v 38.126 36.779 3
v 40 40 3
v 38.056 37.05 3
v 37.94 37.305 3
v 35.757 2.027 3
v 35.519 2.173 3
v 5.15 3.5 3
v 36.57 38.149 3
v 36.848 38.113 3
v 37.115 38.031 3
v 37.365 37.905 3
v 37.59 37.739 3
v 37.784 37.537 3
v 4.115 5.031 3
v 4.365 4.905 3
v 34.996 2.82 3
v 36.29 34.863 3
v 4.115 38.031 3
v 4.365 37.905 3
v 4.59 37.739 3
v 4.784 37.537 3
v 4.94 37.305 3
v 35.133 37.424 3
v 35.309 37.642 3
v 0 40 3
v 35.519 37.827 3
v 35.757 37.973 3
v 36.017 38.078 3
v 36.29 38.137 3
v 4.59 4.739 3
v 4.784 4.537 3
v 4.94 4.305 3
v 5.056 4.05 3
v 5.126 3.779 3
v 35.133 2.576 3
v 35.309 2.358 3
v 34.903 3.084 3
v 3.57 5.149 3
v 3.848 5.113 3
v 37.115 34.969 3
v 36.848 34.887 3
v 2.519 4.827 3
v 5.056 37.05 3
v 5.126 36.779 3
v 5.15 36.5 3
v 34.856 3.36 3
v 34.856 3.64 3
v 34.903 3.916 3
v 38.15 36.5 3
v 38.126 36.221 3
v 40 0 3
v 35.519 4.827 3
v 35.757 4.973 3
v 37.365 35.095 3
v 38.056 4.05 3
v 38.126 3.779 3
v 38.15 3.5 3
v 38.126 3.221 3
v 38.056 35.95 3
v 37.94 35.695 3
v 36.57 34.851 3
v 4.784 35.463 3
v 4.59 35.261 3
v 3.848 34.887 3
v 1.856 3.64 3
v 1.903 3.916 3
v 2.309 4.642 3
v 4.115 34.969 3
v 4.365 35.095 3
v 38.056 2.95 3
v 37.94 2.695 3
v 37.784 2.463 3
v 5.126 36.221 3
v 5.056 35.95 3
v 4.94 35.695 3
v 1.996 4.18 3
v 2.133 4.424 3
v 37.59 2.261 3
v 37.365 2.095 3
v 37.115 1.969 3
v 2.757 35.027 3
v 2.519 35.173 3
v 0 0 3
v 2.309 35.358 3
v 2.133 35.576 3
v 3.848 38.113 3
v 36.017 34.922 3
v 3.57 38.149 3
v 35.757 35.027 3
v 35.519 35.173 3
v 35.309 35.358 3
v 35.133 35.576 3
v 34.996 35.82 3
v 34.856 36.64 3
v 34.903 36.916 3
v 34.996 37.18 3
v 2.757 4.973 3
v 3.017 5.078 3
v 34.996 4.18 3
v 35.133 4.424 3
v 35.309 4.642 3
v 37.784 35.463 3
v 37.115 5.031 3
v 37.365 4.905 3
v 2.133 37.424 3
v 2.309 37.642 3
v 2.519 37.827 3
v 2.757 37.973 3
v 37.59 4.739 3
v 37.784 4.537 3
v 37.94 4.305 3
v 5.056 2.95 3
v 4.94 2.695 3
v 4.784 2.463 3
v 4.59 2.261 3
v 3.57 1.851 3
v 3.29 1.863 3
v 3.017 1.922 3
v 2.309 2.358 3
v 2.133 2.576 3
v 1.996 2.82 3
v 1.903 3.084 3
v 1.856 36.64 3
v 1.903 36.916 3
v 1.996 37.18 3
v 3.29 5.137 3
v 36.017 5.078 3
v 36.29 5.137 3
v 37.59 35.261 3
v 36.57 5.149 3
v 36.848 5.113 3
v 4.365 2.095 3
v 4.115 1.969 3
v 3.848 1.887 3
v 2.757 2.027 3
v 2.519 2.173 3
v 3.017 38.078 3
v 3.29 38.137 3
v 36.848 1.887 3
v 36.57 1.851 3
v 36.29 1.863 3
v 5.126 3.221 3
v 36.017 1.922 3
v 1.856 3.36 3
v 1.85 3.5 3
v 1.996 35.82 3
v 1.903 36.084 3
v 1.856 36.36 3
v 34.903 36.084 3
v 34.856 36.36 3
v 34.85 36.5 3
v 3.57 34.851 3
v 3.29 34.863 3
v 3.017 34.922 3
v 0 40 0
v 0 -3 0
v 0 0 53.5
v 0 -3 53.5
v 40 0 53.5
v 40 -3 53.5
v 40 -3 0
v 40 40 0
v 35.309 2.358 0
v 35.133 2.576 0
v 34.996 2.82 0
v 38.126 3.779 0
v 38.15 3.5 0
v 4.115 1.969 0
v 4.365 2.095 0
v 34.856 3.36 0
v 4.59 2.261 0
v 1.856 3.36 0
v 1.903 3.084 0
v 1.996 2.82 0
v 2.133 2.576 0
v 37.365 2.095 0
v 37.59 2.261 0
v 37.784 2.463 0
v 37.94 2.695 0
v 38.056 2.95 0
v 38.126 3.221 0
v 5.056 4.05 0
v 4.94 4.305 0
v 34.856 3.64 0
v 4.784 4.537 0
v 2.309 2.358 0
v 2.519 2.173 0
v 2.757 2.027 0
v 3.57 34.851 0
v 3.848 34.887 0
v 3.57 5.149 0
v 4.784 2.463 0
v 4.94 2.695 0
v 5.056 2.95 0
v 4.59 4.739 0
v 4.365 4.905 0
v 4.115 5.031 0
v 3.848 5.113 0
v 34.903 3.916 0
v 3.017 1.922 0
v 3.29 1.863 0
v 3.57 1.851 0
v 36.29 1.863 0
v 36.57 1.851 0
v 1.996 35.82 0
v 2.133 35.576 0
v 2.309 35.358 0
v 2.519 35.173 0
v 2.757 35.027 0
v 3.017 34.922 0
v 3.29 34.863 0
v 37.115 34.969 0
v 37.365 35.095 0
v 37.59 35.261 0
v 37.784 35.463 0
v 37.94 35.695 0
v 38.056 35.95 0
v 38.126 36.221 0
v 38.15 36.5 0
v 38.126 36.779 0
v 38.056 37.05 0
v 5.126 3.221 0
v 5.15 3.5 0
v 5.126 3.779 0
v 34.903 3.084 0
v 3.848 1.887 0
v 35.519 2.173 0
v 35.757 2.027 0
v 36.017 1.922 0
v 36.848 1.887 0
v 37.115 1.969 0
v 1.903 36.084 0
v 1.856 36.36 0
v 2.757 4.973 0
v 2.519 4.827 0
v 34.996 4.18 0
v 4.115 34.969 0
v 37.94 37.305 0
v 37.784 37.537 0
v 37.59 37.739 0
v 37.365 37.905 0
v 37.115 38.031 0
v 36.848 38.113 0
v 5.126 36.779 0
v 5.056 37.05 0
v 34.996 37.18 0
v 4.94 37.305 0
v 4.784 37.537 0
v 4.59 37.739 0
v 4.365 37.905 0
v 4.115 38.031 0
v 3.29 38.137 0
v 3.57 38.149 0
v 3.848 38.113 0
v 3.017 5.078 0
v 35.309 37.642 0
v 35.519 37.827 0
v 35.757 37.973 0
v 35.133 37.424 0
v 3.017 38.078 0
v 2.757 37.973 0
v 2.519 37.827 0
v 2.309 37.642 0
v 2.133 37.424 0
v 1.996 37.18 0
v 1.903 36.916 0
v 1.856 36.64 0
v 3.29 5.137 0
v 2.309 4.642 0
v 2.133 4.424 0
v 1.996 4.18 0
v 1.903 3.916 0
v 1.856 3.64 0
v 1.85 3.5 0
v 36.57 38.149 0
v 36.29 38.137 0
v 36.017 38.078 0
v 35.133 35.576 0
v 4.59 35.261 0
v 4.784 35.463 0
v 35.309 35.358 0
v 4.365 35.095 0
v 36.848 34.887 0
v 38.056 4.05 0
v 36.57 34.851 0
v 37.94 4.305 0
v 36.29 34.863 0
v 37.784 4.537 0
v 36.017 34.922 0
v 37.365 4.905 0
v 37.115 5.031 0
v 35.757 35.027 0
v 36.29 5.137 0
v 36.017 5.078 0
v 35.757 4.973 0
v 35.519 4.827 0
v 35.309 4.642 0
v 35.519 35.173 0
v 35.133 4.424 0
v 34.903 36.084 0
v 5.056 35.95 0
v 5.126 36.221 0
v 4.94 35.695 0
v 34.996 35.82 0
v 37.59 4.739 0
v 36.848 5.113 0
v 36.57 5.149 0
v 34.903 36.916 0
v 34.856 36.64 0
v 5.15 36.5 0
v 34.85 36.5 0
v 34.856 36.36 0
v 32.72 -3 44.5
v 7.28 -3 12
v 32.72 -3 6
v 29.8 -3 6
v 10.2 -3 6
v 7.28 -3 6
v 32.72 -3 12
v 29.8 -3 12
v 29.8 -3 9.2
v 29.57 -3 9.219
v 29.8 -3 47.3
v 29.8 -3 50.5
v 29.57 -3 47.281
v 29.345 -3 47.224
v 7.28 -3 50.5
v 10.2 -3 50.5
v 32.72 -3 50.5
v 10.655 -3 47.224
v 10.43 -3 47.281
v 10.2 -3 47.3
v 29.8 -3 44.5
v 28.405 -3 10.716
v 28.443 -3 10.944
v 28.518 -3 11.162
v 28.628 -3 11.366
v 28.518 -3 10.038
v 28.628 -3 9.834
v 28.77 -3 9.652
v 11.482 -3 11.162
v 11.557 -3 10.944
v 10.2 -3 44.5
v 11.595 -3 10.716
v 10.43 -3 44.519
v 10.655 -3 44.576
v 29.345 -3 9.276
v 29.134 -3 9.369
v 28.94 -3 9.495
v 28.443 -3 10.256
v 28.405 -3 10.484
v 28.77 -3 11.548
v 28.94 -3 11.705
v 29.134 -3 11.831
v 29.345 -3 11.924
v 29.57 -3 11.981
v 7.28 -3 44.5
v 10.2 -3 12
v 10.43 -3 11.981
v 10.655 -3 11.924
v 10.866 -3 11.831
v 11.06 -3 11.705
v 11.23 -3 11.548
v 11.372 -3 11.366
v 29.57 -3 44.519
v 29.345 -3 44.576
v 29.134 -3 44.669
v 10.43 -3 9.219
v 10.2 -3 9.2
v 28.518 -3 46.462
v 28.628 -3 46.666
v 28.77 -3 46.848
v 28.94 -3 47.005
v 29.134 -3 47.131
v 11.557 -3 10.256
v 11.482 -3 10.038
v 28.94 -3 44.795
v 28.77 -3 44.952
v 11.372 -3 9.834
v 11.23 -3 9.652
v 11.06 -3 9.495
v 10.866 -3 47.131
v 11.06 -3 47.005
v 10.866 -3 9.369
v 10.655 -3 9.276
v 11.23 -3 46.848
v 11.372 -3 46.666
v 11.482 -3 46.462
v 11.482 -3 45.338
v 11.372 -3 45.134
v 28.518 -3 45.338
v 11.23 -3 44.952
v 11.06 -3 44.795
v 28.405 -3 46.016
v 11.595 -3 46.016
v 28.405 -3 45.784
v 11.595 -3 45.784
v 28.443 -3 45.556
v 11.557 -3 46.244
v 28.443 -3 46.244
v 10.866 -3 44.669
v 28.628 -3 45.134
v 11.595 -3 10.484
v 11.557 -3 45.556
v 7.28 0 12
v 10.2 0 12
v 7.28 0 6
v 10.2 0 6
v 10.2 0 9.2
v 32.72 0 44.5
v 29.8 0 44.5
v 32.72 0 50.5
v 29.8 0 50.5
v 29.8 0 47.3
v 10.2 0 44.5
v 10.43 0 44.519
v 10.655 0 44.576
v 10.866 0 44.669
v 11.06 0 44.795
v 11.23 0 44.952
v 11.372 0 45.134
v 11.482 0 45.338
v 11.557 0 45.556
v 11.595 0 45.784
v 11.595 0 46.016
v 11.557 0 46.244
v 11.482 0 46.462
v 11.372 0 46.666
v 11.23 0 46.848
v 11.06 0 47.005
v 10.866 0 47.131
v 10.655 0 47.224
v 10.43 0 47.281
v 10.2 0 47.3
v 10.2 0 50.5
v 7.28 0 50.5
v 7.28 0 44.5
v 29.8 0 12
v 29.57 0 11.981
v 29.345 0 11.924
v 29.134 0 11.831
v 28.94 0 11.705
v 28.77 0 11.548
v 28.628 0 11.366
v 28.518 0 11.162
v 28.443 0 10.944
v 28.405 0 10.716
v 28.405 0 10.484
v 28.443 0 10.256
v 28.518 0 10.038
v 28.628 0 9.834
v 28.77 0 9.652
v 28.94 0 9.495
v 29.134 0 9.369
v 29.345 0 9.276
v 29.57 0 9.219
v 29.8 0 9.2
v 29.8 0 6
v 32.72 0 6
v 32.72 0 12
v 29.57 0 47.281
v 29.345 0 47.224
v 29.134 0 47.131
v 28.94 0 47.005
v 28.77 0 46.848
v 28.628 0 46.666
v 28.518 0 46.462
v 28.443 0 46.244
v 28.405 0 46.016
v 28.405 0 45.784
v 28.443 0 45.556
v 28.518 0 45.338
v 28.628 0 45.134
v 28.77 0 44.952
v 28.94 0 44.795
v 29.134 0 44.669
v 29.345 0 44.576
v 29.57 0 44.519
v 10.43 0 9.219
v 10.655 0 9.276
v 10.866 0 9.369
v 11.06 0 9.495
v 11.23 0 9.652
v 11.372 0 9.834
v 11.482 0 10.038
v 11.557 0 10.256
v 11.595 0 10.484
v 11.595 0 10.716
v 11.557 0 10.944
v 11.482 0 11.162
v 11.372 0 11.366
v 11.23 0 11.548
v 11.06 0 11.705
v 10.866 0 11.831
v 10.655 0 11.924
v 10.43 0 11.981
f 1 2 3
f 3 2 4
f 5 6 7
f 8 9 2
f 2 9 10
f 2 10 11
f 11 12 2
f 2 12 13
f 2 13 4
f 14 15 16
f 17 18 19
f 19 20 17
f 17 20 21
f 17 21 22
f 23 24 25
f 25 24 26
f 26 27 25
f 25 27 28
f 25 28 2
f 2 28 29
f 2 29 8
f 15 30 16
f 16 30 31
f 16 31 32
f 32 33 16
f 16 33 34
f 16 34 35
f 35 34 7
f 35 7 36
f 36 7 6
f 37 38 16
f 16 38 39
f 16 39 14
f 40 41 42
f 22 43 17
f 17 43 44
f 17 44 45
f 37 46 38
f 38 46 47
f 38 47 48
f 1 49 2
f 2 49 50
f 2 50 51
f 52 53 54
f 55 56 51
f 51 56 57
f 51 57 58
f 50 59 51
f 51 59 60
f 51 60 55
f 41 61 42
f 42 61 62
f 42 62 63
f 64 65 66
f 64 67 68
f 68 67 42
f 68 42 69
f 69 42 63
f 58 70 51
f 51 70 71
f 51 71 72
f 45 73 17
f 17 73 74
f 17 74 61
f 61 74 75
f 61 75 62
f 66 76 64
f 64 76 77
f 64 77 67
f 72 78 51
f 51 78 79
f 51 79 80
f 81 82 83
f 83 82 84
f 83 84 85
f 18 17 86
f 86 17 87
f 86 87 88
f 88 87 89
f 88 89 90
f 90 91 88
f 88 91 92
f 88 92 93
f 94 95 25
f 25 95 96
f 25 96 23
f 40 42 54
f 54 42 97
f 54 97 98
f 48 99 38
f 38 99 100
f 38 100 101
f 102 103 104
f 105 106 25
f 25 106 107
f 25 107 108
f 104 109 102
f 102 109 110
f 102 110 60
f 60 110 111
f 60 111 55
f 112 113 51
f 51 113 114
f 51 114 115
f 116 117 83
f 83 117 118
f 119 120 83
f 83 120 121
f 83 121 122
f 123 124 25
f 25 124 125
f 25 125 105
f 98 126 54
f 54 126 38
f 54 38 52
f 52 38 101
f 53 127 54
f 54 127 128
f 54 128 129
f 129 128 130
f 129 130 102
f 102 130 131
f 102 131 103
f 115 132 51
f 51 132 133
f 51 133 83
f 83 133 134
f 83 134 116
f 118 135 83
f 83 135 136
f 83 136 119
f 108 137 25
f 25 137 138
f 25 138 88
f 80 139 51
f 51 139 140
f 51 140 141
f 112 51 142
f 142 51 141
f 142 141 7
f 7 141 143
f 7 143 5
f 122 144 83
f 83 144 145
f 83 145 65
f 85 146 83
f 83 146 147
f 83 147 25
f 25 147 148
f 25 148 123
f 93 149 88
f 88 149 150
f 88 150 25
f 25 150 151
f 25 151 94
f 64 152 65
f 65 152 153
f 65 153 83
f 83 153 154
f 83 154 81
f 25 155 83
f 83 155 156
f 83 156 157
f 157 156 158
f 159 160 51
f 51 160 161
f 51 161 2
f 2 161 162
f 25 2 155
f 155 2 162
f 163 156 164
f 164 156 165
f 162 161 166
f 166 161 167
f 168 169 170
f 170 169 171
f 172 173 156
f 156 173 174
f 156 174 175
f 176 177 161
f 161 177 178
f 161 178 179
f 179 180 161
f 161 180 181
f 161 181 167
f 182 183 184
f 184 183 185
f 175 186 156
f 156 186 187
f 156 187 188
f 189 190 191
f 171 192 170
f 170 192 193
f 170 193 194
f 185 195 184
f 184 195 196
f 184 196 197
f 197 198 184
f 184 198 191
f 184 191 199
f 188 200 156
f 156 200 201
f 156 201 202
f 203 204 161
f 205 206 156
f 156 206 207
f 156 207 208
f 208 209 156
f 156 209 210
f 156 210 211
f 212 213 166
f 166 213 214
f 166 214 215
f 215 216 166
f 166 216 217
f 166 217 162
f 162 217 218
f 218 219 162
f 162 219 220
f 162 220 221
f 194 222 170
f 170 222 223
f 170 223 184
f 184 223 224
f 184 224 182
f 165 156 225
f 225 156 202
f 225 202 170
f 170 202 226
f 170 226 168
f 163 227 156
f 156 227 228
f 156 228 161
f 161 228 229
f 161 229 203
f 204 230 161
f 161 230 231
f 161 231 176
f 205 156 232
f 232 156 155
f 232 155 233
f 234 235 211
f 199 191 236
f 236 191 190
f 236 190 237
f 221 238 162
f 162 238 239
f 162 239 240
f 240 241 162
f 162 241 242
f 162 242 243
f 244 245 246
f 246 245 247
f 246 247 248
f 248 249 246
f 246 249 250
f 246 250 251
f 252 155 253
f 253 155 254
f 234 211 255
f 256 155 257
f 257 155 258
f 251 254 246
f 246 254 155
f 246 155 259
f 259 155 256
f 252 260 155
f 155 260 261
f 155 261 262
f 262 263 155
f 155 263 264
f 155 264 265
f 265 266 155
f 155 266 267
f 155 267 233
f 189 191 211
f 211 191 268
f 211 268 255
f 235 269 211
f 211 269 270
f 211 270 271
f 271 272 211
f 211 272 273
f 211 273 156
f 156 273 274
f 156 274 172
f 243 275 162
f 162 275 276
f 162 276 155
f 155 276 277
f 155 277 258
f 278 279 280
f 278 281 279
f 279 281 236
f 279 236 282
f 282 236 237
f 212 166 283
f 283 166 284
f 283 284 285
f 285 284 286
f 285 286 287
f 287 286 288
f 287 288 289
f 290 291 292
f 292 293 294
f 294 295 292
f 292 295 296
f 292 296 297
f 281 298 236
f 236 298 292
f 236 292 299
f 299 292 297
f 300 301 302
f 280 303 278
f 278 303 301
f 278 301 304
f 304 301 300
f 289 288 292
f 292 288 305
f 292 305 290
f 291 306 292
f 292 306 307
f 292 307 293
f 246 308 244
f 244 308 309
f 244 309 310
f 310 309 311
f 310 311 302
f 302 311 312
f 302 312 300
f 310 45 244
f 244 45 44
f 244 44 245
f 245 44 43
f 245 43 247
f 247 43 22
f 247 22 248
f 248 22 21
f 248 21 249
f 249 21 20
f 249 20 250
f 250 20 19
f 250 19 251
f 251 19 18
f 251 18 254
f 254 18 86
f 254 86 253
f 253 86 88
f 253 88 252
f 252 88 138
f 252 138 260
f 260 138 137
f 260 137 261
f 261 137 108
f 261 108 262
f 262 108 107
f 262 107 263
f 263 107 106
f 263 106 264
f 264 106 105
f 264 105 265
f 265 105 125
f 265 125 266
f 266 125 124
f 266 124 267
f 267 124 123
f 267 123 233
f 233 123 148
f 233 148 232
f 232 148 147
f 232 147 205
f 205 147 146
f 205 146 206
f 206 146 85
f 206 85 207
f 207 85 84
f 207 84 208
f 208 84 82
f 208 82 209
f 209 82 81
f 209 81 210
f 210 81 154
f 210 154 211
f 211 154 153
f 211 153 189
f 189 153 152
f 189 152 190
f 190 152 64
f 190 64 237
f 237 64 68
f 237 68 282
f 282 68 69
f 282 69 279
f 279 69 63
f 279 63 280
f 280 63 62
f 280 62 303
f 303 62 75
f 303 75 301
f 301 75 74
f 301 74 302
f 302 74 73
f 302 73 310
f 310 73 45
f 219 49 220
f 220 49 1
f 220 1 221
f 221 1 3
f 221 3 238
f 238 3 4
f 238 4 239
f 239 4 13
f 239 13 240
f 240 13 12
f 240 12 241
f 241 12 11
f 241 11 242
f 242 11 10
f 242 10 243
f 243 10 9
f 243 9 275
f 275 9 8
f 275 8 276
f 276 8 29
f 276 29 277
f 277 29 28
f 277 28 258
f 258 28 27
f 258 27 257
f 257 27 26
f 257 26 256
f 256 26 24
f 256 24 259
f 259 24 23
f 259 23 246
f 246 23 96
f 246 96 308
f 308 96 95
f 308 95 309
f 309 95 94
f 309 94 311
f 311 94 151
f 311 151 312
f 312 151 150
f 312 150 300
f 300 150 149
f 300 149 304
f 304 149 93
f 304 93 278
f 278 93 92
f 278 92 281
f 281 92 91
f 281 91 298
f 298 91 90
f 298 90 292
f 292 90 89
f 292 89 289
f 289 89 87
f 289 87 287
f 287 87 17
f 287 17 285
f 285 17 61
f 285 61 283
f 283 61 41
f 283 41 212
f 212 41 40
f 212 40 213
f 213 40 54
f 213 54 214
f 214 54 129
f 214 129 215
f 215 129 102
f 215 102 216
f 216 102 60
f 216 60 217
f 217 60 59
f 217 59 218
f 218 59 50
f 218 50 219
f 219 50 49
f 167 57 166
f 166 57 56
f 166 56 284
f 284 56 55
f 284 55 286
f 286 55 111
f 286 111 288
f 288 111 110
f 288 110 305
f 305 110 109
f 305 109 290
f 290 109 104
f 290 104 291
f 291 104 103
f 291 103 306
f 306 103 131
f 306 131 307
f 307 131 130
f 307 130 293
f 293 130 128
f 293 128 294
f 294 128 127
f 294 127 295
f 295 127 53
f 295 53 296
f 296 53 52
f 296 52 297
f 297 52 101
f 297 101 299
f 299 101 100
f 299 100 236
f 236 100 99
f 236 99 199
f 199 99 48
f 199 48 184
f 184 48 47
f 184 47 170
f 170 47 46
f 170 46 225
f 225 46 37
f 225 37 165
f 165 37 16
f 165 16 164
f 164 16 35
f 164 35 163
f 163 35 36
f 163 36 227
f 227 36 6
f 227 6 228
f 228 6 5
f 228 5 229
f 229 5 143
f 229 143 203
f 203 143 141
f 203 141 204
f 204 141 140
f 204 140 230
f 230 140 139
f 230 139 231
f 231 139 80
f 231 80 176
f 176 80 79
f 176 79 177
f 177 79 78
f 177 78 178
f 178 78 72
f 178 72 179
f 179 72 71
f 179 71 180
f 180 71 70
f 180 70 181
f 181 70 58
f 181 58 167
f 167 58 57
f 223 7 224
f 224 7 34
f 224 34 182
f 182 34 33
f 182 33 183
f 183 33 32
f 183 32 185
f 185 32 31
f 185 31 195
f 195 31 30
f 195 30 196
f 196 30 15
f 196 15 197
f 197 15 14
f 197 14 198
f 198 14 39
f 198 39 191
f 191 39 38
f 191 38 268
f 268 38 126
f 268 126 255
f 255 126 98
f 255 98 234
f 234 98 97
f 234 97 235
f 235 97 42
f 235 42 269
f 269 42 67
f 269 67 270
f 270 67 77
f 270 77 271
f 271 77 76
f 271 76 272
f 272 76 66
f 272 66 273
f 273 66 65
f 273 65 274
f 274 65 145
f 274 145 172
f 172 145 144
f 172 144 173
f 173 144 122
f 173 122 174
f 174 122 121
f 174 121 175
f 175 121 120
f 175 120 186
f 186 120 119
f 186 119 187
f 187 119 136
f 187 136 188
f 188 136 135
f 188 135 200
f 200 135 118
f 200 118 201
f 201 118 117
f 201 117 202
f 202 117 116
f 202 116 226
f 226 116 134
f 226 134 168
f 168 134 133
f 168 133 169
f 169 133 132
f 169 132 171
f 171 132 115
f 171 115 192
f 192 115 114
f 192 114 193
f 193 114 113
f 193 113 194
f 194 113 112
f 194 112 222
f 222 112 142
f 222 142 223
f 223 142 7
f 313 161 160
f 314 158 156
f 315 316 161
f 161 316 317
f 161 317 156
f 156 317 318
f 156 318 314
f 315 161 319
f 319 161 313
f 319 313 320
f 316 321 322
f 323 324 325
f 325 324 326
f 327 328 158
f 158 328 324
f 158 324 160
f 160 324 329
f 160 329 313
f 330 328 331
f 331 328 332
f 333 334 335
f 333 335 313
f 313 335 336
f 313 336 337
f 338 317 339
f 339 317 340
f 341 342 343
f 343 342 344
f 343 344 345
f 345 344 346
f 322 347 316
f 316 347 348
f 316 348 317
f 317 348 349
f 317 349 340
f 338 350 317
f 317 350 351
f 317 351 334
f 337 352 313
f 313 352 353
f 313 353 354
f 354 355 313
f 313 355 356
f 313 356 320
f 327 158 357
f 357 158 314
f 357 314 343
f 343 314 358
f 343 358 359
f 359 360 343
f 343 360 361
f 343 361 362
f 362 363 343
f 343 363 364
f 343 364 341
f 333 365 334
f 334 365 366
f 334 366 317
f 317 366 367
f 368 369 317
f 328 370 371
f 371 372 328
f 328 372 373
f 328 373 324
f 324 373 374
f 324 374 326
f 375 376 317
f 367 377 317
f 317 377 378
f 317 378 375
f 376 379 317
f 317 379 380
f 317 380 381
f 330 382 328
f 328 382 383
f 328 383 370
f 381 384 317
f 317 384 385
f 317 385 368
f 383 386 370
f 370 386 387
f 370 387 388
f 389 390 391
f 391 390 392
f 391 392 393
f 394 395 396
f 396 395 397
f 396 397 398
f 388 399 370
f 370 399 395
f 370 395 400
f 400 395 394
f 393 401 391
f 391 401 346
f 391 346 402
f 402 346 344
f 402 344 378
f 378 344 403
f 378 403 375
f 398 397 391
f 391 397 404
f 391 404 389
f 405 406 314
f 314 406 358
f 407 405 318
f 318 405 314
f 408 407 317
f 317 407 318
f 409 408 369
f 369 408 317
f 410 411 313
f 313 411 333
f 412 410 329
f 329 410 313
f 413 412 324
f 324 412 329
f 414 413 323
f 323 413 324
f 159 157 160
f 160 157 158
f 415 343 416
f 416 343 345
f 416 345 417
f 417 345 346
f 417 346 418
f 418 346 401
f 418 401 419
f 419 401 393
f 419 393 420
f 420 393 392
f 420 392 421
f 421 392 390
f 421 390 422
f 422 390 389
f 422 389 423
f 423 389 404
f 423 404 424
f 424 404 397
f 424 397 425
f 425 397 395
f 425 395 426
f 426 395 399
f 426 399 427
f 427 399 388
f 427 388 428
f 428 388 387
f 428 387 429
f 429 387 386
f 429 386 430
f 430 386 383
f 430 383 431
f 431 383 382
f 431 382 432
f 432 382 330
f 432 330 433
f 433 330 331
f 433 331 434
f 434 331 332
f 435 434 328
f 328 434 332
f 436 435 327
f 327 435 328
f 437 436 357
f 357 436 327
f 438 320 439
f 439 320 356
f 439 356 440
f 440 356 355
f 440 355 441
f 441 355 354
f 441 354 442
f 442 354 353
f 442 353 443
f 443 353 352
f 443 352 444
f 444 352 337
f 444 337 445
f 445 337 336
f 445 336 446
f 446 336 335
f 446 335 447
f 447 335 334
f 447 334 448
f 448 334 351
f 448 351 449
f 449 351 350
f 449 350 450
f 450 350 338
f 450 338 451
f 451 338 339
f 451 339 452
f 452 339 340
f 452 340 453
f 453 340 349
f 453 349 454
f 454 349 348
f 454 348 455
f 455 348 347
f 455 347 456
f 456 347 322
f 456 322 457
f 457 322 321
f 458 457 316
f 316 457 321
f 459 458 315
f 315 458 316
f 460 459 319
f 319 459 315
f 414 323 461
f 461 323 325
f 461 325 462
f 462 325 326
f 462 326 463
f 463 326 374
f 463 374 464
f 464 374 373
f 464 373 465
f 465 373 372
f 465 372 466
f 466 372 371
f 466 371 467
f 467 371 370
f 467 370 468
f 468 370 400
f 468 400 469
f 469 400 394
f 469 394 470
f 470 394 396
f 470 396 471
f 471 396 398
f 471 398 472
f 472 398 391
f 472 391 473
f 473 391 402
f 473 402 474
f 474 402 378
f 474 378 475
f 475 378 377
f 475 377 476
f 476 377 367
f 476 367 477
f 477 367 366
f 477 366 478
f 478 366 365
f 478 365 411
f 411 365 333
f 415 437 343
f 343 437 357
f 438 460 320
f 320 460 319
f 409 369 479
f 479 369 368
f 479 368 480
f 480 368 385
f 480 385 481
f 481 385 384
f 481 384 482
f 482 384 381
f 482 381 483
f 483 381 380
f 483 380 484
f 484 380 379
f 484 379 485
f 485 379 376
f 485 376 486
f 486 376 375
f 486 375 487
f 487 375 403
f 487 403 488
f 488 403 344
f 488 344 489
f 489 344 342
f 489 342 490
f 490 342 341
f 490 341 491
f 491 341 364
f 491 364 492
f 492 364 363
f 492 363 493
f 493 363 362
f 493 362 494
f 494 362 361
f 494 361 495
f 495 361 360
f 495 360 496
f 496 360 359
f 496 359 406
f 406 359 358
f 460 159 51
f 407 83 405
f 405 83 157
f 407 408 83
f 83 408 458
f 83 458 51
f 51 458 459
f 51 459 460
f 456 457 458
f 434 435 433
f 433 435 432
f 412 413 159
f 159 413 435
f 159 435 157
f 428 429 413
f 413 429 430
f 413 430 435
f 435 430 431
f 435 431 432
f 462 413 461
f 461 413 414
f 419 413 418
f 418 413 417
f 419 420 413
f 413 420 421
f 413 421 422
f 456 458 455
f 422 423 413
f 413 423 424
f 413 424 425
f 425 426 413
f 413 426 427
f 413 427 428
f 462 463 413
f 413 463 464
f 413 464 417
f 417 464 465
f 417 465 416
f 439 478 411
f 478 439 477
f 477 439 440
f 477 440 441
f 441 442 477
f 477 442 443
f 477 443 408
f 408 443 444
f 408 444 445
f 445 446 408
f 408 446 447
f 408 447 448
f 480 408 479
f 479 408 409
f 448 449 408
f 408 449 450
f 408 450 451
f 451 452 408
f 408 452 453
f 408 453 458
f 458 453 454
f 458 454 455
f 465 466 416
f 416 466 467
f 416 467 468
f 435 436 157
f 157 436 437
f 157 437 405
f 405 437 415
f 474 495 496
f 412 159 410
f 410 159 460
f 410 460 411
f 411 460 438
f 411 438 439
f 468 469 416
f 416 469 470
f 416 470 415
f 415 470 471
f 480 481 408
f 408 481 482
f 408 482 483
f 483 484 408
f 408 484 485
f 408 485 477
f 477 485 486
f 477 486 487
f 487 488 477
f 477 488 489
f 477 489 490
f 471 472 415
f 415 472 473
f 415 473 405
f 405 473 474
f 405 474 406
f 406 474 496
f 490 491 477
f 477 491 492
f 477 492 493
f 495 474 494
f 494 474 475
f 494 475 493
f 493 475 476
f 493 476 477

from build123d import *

# Parameters (mm, degrees)
SKETCH1_W           = 40
SKETCH1_H           = 40
BOSS_EXTRUDE1_DEPTH = 3
SKETCH2_R           = 1.65
CUT_EXTRUDE1_DEPTH  = 3
SKETCH3_W           = 40
SKETCH3_H           = 3
BOSS_EXTRUDE2_DEPTH = 3
SKETCH4_W           = 40
SKETCH4_H           = 50.5
BOSS_EXTRUDE3_DEPTH = 3


with BuildPart() as part:
    # Sketch1 → Boss-Extrude1 (new body)
    with BuildSketch(Plane.XY):
        with Locations((20, 20)):
            Rectangle(SKETCH1_W, SKETCH1_H)
    extrude(amount=BOSS_EXTRUDE1_DEPTH)

    # Sketch2 → Cut-Extrude1 (cut)
    with BuildSketch(Plane.XY.offset(3)):
        with Locations((3.5, 36.5)):
            Circle(SKETCH2_R)
        with Locations(Location((36.5, 36.5, 0), (0, 0, 180))):
            Circle(SKETCH2_R)
        with Locations((36.5, 3.5)):
            Circle(SKETCH2_R)
        with Locations(Location((3.5, 3.5, 0), (0, 0, 180))):
            Circle(SKETCH2_R)
    extrude(amount=-CUT_EXTRUDE1_DEPTH, mode=Mode.SUBTRACT)

    # Sketch3 → Boss-Extrude2 (add)
    with BuildSketch(Plane.XY.offset(3)):
        with Locations((20, -1.5)):
            Rectangle(SKETCH3_W, SKETCH3_H)
    extrude(amount=-BOSS_EXTRUDE2_DEPTH)

    # Sketch4 → Boss-Extrude3 (add)
    with BuildSketch(Plane.XZ.offset(3)):
        with Locations((20, 28.25)):
            Rectangle(SKETCH4_W, SKETCH4_H)
        with BuildLine():
            Line((7.28, 50.5), (10.2, 50.5))
            Line((10.2, 50.5), (10.2, 47.3))
            ThreePointArc((10.2, 47.3), (11.6, 45.9), (10.2, 44.5))
            Line((10.2, 44.5), (7.28, 44.5))
            Line((7.28, 44.5), (7.28, 50.5))
        make_face(mode=Mode.SUBTRACT)
        with BuildLine():
            Line((32.72, 50.5), (32.72, 44.5))
            Line((32.72, 44.5), (29.8, 44.5))
            ThreePointArc((29.8, 44.5), (28.4, 45.9), (29.8, 47.3))
            Line((29.8, 47.3), (29.8, 50.5))
            Line((29.8, 50.5), (32.72, 50.5))
        make_face(mode=Mode.SUBTRACT)
        with BuildLine():
            Line((32.72, 6), (29.8, 6))
            Line((29.8, 6), (29.8, 9.2))
            ThreePointArc((29.8, 9.2), (28.4, 10.6), (29.8, 12))
            Line((29.8, 12), (32.72, 12))
            Line((32.72, 12), (32.72, 6))
        make_face(mode=Mode.SUBTRACT)
        with BuildLine():
            Line((7.28, 6), (7.28, 12))
            Line((7.28, 12), (10.2, 12))
            ThreePointArc((10.2, 12), (11.6, 10.6), (10.2, 9.2))
            Line((10.2, 9.2), (10.2, 6))
            Line((10.2, 6), (7.28, 6))
        make_face(mode=Mode.SUBTRACT)
    extrude(amount=-BOSS_EXTRUDE3_DEPTH)


solid = part.part
